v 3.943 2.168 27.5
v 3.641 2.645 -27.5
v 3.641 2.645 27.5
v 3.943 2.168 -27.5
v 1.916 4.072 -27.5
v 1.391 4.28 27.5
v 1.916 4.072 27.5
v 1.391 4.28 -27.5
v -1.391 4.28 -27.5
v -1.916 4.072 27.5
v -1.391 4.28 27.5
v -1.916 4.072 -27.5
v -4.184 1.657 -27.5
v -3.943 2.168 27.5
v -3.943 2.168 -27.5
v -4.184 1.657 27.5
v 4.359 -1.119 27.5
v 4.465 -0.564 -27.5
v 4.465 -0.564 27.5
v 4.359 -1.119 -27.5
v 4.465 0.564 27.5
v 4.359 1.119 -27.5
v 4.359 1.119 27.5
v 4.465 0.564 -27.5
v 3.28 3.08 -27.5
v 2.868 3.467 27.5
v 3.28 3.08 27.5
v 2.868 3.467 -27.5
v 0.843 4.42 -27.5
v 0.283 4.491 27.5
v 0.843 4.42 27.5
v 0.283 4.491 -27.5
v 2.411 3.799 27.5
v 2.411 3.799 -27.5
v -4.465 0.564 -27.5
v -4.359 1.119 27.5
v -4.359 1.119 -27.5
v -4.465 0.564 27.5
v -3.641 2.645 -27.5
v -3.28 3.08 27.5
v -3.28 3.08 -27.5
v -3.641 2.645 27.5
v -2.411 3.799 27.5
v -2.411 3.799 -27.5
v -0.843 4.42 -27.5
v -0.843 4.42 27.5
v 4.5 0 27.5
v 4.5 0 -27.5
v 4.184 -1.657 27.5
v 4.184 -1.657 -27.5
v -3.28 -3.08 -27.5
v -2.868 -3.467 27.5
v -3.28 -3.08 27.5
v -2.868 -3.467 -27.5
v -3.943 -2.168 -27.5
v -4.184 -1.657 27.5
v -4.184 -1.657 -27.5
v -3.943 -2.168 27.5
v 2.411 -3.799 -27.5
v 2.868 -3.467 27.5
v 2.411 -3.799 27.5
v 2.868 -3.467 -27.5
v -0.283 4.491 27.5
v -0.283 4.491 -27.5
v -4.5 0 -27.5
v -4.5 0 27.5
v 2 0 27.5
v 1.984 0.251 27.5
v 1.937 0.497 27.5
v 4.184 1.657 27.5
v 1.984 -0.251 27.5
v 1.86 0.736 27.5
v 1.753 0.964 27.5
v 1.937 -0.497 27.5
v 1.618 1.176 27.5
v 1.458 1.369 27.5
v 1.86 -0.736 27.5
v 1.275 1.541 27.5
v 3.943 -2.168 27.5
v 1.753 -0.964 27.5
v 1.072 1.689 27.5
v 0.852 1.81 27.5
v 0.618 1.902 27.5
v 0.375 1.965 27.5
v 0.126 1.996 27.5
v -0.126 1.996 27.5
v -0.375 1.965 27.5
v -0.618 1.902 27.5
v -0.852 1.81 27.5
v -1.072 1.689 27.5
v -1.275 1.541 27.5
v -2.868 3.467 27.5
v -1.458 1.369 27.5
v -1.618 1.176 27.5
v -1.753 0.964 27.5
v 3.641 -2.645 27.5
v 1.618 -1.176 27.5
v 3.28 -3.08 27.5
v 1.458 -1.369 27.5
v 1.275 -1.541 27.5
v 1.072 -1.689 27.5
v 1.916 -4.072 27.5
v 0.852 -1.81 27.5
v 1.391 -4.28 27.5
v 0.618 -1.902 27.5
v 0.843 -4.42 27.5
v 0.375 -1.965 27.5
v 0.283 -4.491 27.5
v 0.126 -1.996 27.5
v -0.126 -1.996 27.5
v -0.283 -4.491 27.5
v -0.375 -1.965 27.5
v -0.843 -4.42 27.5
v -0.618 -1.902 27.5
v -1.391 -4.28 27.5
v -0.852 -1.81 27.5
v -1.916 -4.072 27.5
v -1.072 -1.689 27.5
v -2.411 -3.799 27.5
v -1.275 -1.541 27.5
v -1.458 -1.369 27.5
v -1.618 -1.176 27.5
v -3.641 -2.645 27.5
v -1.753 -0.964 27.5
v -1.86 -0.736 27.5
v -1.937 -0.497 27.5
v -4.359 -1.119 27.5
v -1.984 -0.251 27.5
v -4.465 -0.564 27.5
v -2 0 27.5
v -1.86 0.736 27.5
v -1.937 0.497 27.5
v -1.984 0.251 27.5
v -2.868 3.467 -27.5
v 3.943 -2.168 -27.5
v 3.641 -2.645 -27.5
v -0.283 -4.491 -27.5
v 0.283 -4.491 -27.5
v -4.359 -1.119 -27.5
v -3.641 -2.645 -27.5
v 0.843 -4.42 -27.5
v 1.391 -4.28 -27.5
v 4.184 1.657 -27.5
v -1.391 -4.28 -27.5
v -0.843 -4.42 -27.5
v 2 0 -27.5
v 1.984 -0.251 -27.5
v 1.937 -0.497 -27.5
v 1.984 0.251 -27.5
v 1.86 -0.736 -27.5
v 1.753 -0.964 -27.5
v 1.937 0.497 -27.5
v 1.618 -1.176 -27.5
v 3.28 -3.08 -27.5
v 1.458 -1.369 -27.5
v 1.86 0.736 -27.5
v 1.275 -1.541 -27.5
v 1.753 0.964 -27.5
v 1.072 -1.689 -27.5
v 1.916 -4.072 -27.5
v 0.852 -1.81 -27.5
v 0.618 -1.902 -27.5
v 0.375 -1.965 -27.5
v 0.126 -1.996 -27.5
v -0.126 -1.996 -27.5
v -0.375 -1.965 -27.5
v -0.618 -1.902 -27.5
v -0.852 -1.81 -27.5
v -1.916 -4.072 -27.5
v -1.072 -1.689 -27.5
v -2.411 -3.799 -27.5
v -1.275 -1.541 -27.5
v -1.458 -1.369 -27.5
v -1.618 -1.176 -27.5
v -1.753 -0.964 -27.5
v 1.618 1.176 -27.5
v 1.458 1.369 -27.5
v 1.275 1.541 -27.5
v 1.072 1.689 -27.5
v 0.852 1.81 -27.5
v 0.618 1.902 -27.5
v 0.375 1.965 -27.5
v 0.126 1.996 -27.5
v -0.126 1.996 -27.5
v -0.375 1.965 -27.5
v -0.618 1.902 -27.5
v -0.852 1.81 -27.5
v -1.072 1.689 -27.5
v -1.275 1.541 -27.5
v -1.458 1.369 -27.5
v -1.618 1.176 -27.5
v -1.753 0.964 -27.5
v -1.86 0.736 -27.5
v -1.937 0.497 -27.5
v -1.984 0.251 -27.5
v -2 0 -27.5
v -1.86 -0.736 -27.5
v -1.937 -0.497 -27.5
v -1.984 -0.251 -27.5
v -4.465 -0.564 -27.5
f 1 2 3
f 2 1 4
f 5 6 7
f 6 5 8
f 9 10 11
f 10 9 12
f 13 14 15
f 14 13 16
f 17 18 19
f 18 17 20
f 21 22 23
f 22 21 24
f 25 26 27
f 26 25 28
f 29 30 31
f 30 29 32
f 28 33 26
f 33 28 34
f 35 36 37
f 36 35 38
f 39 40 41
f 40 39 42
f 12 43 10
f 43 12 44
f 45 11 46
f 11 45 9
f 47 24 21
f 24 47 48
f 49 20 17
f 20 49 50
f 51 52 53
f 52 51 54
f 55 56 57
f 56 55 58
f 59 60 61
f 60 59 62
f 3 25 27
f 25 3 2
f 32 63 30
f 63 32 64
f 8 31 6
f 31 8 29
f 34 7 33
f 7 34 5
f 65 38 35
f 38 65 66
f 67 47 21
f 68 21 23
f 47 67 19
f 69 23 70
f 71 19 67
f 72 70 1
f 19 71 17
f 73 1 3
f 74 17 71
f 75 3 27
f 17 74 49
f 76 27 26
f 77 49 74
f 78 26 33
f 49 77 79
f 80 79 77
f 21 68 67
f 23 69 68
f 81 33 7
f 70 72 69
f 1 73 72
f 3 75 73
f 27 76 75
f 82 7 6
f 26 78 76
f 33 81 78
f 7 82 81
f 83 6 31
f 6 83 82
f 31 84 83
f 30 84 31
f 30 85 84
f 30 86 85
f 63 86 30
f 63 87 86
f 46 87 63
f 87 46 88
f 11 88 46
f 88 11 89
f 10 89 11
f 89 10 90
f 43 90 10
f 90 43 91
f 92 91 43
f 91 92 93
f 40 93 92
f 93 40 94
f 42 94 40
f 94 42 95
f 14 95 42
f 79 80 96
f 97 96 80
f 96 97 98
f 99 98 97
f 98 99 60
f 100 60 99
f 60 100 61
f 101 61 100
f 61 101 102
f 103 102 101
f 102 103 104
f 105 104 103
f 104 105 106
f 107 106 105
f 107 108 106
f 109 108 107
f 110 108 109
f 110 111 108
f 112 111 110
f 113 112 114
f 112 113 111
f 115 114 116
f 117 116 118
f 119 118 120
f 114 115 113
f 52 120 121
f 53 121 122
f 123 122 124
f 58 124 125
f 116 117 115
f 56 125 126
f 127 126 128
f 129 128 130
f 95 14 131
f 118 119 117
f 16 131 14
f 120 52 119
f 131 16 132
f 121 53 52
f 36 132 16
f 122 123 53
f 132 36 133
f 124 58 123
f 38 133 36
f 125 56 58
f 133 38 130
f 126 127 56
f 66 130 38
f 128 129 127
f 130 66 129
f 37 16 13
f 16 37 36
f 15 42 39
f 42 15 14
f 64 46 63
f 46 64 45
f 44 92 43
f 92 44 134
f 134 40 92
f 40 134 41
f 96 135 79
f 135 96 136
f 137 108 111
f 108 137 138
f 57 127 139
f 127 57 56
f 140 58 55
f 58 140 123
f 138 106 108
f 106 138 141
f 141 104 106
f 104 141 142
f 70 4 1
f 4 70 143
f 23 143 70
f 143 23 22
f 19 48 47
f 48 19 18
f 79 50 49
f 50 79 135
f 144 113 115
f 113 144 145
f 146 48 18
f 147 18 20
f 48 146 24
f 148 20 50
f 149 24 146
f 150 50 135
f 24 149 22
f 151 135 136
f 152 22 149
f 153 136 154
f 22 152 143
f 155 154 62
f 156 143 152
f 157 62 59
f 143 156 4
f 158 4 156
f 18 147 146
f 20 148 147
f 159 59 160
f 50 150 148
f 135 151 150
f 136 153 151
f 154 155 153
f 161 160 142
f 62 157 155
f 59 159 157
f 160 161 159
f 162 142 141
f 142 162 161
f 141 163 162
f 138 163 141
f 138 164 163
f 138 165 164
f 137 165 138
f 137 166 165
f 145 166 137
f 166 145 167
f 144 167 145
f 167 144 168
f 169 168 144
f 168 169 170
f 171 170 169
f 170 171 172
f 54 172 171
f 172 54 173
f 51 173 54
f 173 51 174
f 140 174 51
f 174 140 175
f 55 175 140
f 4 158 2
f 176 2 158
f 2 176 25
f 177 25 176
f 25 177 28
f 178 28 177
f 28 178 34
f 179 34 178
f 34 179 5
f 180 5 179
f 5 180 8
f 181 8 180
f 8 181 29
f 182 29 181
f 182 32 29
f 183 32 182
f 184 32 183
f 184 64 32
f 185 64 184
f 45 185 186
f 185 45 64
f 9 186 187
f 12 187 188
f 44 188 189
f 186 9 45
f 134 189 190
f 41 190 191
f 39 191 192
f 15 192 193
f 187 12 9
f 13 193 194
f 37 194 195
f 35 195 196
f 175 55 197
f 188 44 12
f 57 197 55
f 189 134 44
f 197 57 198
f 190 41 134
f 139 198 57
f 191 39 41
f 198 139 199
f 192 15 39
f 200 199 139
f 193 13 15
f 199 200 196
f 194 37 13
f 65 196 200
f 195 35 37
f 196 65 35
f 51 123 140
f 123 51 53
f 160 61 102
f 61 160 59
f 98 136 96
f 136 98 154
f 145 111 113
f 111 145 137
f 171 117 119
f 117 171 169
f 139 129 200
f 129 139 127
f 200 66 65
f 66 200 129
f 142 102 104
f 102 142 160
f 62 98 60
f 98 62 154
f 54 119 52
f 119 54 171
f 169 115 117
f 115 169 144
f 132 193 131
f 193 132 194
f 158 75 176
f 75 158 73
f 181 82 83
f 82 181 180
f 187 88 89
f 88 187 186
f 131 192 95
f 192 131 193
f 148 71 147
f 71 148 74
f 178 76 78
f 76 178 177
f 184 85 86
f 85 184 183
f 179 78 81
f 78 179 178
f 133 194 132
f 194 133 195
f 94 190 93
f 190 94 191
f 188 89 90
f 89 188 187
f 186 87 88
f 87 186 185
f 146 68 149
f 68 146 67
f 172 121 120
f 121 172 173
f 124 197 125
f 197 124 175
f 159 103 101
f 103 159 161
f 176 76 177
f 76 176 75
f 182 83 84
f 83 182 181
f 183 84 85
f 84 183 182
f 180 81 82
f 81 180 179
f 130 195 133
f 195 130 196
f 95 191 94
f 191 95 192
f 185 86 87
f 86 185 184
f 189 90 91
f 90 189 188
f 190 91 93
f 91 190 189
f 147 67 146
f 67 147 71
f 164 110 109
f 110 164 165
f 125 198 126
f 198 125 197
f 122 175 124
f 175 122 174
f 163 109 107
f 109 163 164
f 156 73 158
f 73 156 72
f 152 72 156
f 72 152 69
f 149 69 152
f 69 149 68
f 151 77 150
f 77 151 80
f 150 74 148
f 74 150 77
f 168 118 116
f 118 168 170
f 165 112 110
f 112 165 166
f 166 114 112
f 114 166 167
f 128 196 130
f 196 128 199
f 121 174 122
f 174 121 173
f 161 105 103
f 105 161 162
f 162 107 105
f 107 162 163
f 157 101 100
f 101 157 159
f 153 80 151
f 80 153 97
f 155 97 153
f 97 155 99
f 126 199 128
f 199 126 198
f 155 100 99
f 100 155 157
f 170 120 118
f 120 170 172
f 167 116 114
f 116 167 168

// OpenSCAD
$fn = 50;


difference() {
	union() {
		translate(v = [0, 0, -27.5000000000]) {
			cylinder(h = 55, r = 4.5000000000);
		}
	}
	union() {
		translate(v = [0, 0, -100.0000000000]) {
			cylinder(h = 200, r = 2);
		}
	}
}
